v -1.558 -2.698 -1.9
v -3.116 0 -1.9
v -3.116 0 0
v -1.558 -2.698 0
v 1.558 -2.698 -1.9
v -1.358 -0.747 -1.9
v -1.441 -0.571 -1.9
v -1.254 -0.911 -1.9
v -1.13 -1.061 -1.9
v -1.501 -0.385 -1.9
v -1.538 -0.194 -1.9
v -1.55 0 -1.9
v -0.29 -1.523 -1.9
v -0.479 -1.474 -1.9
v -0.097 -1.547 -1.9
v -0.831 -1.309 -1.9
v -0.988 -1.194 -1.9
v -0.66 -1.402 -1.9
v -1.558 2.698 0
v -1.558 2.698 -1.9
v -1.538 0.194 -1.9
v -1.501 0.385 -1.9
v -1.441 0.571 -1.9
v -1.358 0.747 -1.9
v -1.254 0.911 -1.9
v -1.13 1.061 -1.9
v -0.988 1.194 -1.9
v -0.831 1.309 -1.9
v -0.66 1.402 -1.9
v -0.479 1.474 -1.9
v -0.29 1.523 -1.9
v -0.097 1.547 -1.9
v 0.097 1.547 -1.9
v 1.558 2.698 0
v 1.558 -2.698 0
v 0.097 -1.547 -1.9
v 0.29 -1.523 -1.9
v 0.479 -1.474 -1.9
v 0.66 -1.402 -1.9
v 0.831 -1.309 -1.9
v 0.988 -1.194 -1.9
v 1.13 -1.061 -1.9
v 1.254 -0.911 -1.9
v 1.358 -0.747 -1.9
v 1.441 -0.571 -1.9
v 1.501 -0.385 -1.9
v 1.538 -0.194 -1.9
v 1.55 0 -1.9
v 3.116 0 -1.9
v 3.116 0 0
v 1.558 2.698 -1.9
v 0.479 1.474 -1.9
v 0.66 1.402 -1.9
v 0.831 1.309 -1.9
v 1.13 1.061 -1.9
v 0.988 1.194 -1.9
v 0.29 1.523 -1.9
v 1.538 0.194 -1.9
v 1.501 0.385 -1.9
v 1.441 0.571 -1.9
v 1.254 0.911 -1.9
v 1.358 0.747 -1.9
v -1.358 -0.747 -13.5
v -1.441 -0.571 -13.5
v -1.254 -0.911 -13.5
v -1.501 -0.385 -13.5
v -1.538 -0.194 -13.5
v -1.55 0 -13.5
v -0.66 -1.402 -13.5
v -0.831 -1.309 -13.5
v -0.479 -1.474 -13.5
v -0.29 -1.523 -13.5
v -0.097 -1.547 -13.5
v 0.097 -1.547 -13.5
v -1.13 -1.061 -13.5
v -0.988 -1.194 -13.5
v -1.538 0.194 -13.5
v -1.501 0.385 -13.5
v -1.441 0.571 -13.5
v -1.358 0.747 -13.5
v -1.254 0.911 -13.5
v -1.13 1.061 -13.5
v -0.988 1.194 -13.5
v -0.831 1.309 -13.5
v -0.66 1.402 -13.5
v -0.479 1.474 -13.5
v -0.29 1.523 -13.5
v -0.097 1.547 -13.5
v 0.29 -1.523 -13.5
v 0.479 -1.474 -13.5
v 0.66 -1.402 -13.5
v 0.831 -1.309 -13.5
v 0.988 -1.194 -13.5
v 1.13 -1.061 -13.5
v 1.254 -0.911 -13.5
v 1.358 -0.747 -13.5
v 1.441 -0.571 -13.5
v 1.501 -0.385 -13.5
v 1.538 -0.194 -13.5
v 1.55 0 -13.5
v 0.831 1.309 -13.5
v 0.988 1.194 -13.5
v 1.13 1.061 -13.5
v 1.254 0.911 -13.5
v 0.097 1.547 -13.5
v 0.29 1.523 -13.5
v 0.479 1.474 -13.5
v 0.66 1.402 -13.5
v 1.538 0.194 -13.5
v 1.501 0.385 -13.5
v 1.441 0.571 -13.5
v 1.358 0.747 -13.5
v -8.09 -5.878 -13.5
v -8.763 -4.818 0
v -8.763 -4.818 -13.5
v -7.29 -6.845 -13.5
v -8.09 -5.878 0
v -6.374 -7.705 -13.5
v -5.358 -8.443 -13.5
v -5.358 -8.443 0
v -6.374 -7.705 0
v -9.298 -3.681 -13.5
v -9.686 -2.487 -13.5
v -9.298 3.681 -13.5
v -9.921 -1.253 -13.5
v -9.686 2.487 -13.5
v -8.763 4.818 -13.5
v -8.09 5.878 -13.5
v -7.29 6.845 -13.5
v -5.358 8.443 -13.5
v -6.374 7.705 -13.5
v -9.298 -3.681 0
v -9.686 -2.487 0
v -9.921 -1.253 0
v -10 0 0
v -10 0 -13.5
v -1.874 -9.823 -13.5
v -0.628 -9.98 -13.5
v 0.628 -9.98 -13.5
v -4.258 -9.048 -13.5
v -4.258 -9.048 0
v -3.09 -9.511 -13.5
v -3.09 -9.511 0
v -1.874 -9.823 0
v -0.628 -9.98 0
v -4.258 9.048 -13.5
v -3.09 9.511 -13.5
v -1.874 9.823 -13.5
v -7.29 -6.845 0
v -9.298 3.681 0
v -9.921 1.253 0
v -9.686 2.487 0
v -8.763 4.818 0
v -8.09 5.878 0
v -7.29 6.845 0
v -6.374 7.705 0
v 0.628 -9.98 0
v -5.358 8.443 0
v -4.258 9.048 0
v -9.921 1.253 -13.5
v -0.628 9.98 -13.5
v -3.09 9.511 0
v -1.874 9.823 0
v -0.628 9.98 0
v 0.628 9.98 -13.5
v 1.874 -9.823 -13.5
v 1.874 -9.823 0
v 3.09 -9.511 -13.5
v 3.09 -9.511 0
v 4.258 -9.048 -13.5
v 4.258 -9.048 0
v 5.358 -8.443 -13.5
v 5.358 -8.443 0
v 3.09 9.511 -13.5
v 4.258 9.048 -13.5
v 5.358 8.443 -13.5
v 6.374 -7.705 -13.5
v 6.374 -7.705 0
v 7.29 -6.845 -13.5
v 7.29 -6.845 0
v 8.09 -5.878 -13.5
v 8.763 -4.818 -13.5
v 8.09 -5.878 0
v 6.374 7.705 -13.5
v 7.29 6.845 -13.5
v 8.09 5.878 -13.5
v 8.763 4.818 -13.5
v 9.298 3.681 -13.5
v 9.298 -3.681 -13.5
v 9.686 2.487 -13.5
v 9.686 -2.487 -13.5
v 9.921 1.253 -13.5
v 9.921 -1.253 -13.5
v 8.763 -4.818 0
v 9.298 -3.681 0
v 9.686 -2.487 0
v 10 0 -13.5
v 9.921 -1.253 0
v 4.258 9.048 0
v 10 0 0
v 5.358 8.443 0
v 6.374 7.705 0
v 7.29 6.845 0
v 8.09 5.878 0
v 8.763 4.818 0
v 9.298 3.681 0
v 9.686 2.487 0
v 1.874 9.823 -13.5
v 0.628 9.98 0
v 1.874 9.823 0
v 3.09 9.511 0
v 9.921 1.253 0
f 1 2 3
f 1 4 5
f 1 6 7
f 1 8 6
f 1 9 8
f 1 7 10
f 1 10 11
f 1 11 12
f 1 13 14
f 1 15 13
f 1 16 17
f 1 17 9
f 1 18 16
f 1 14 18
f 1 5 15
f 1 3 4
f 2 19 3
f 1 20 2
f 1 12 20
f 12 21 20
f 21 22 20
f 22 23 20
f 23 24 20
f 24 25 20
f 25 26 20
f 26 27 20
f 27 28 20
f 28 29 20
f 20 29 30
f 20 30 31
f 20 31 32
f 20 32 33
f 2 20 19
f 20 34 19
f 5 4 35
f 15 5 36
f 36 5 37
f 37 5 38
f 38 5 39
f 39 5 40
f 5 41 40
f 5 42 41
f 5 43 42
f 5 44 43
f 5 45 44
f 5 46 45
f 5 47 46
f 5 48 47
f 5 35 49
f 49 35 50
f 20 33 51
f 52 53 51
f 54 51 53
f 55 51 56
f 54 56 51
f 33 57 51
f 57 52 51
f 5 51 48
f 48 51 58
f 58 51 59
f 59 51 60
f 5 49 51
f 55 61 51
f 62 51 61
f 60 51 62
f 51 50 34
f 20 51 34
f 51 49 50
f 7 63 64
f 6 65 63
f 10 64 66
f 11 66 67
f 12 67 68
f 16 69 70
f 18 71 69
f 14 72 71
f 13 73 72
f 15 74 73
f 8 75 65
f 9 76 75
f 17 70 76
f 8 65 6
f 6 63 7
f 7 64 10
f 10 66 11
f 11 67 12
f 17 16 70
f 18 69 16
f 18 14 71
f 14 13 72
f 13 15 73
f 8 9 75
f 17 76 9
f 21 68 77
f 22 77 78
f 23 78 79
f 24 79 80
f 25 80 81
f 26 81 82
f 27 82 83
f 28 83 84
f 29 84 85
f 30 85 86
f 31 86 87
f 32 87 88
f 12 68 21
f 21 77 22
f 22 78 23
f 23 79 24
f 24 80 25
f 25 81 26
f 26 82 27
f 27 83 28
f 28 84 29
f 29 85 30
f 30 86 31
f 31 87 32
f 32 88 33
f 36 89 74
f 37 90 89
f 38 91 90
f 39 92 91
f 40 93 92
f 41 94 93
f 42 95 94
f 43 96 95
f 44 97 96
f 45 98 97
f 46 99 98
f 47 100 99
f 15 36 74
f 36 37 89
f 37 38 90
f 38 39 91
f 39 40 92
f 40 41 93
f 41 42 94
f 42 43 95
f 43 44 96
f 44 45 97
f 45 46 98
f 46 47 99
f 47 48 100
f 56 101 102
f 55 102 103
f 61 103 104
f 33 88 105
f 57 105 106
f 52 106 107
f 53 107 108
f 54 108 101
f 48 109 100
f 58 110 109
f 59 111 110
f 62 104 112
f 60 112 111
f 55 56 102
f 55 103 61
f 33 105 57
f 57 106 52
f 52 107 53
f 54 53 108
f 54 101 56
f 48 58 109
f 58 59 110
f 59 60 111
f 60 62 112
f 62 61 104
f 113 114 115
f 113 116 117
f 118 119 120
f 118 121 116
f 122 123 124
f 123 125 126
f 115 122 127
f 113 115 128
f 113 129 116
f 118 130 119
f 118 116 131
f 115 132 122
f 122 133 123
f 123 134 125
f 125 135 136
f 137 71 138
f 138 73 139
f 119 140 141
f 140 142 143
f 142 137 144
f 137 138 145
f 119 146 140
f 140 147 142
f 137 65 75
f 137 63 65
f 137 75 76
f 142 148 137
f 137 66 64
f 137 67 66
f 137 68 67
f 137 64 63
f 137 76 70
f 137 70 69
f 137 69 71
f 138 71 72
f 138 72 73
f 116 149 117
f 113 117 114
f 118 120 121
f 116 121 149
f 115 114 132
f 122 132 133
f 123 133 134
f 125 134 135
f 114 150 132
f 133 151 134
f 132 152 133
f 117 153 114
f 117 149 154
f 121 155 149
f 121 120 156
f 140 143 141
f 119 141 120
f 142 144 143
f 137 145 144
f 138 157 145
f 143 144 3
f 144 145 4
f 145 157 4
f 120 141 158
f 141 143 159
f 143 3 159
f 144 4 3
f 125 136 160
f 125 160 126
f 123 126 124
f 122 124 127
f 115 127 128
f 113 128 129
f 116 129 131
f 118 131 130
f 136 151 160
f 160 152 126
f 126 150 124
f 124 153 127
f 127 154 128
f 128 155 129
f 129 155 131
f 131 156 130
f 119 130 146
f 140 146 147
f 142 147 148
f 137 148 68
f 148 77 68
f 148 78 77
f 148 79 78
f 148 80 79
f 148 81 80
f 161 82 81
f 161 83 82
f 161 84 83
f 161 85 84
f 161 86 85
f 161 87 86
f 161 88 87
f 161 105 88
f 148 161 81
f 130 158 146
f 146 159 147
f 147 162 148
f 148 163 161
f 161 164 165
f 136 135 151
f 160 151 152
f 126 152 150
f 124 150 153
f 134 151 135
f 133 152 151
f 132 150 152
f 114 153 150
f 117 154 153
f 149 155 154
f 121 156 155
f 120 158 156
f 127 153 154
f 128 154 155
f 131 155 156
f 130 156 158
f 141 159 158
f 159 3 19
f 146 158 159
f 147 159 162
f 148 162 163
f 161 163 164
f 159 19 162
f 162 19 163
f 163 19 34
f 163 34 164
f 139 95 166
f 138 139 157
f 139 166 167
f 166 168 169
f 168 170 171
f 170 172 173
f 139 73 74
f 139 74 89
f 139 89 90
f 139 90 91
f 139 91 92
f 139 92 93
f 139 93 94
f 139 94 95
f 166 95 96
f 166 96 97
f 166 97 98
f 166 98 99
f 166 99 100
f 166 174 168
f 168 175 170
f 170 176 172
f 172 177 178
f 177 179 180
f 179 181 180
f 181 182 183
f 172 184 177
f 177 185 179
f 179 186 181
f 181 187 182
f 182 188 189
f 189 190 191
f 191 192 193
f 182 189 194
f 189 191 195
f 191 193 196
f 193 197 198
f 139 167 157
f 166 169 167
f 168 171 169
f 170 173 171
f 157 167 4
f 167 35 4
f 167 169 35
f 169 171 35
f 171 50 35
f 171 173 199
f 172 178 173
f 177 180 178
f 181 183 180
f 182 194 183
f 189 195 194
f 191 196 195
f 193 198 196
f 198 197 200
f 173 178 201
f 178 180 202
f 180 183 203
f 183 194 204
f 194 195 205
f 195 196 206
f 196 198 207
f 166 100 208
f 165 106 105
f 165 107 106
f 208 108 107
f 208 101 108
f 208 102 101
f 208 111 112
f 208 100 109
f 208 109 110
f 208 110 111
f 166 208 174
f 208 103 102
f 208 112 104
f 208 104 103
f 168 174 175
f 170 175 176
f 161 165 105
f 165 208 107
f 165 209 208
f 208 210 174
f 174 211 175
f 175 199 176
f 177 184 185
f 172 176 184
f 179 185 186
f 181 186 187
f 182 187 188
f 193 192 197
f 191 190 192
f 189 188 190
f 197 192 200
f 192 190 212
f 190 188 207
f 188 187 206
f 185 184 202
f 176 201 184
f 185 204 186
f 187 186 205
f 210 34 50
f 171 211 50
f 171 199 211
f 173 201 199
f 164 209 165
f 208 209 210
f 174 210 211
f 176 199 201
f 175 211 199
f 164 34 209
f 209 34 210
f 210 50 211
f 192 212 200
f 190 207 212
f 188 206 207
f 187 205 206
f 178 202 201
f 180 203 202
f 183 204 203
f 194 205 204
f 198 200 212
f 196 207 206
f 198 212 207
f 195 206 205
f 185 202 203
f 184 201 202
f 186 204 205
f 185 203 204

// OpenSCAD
$fn = 50;

difference() {
	union() {
		translate(v = [0, 0, -13.5]) {
			cylinder(h = 13.5, r = 10.0);
		}
	}
	union() {
		translate(v = [0, 0, 0]) {
			rotate(a = [0, 0, 0]) {
				difference() {
					union() {
						translate(v = [0, 0, -1.9]) {
							linear_extrude(height = 1.9) {
								polygon(points = [[3.1158, 0.0], [1.5579000000000005, 2.698361953111554], [-1.5578999999999994, 2.6983619531115544], [-3.1158, 3.815754496783323e-16], [-1.5579000000000014, -2.6983619531115535], [1.557899999999998, -2.6983619531115552]]);
							}
						}
					}
					union();
				}
			}
		}
		#translate(v = [0, 0, -100.0]) {
			cylinder(h = 200, r = 1.55);
		}
	}
}
